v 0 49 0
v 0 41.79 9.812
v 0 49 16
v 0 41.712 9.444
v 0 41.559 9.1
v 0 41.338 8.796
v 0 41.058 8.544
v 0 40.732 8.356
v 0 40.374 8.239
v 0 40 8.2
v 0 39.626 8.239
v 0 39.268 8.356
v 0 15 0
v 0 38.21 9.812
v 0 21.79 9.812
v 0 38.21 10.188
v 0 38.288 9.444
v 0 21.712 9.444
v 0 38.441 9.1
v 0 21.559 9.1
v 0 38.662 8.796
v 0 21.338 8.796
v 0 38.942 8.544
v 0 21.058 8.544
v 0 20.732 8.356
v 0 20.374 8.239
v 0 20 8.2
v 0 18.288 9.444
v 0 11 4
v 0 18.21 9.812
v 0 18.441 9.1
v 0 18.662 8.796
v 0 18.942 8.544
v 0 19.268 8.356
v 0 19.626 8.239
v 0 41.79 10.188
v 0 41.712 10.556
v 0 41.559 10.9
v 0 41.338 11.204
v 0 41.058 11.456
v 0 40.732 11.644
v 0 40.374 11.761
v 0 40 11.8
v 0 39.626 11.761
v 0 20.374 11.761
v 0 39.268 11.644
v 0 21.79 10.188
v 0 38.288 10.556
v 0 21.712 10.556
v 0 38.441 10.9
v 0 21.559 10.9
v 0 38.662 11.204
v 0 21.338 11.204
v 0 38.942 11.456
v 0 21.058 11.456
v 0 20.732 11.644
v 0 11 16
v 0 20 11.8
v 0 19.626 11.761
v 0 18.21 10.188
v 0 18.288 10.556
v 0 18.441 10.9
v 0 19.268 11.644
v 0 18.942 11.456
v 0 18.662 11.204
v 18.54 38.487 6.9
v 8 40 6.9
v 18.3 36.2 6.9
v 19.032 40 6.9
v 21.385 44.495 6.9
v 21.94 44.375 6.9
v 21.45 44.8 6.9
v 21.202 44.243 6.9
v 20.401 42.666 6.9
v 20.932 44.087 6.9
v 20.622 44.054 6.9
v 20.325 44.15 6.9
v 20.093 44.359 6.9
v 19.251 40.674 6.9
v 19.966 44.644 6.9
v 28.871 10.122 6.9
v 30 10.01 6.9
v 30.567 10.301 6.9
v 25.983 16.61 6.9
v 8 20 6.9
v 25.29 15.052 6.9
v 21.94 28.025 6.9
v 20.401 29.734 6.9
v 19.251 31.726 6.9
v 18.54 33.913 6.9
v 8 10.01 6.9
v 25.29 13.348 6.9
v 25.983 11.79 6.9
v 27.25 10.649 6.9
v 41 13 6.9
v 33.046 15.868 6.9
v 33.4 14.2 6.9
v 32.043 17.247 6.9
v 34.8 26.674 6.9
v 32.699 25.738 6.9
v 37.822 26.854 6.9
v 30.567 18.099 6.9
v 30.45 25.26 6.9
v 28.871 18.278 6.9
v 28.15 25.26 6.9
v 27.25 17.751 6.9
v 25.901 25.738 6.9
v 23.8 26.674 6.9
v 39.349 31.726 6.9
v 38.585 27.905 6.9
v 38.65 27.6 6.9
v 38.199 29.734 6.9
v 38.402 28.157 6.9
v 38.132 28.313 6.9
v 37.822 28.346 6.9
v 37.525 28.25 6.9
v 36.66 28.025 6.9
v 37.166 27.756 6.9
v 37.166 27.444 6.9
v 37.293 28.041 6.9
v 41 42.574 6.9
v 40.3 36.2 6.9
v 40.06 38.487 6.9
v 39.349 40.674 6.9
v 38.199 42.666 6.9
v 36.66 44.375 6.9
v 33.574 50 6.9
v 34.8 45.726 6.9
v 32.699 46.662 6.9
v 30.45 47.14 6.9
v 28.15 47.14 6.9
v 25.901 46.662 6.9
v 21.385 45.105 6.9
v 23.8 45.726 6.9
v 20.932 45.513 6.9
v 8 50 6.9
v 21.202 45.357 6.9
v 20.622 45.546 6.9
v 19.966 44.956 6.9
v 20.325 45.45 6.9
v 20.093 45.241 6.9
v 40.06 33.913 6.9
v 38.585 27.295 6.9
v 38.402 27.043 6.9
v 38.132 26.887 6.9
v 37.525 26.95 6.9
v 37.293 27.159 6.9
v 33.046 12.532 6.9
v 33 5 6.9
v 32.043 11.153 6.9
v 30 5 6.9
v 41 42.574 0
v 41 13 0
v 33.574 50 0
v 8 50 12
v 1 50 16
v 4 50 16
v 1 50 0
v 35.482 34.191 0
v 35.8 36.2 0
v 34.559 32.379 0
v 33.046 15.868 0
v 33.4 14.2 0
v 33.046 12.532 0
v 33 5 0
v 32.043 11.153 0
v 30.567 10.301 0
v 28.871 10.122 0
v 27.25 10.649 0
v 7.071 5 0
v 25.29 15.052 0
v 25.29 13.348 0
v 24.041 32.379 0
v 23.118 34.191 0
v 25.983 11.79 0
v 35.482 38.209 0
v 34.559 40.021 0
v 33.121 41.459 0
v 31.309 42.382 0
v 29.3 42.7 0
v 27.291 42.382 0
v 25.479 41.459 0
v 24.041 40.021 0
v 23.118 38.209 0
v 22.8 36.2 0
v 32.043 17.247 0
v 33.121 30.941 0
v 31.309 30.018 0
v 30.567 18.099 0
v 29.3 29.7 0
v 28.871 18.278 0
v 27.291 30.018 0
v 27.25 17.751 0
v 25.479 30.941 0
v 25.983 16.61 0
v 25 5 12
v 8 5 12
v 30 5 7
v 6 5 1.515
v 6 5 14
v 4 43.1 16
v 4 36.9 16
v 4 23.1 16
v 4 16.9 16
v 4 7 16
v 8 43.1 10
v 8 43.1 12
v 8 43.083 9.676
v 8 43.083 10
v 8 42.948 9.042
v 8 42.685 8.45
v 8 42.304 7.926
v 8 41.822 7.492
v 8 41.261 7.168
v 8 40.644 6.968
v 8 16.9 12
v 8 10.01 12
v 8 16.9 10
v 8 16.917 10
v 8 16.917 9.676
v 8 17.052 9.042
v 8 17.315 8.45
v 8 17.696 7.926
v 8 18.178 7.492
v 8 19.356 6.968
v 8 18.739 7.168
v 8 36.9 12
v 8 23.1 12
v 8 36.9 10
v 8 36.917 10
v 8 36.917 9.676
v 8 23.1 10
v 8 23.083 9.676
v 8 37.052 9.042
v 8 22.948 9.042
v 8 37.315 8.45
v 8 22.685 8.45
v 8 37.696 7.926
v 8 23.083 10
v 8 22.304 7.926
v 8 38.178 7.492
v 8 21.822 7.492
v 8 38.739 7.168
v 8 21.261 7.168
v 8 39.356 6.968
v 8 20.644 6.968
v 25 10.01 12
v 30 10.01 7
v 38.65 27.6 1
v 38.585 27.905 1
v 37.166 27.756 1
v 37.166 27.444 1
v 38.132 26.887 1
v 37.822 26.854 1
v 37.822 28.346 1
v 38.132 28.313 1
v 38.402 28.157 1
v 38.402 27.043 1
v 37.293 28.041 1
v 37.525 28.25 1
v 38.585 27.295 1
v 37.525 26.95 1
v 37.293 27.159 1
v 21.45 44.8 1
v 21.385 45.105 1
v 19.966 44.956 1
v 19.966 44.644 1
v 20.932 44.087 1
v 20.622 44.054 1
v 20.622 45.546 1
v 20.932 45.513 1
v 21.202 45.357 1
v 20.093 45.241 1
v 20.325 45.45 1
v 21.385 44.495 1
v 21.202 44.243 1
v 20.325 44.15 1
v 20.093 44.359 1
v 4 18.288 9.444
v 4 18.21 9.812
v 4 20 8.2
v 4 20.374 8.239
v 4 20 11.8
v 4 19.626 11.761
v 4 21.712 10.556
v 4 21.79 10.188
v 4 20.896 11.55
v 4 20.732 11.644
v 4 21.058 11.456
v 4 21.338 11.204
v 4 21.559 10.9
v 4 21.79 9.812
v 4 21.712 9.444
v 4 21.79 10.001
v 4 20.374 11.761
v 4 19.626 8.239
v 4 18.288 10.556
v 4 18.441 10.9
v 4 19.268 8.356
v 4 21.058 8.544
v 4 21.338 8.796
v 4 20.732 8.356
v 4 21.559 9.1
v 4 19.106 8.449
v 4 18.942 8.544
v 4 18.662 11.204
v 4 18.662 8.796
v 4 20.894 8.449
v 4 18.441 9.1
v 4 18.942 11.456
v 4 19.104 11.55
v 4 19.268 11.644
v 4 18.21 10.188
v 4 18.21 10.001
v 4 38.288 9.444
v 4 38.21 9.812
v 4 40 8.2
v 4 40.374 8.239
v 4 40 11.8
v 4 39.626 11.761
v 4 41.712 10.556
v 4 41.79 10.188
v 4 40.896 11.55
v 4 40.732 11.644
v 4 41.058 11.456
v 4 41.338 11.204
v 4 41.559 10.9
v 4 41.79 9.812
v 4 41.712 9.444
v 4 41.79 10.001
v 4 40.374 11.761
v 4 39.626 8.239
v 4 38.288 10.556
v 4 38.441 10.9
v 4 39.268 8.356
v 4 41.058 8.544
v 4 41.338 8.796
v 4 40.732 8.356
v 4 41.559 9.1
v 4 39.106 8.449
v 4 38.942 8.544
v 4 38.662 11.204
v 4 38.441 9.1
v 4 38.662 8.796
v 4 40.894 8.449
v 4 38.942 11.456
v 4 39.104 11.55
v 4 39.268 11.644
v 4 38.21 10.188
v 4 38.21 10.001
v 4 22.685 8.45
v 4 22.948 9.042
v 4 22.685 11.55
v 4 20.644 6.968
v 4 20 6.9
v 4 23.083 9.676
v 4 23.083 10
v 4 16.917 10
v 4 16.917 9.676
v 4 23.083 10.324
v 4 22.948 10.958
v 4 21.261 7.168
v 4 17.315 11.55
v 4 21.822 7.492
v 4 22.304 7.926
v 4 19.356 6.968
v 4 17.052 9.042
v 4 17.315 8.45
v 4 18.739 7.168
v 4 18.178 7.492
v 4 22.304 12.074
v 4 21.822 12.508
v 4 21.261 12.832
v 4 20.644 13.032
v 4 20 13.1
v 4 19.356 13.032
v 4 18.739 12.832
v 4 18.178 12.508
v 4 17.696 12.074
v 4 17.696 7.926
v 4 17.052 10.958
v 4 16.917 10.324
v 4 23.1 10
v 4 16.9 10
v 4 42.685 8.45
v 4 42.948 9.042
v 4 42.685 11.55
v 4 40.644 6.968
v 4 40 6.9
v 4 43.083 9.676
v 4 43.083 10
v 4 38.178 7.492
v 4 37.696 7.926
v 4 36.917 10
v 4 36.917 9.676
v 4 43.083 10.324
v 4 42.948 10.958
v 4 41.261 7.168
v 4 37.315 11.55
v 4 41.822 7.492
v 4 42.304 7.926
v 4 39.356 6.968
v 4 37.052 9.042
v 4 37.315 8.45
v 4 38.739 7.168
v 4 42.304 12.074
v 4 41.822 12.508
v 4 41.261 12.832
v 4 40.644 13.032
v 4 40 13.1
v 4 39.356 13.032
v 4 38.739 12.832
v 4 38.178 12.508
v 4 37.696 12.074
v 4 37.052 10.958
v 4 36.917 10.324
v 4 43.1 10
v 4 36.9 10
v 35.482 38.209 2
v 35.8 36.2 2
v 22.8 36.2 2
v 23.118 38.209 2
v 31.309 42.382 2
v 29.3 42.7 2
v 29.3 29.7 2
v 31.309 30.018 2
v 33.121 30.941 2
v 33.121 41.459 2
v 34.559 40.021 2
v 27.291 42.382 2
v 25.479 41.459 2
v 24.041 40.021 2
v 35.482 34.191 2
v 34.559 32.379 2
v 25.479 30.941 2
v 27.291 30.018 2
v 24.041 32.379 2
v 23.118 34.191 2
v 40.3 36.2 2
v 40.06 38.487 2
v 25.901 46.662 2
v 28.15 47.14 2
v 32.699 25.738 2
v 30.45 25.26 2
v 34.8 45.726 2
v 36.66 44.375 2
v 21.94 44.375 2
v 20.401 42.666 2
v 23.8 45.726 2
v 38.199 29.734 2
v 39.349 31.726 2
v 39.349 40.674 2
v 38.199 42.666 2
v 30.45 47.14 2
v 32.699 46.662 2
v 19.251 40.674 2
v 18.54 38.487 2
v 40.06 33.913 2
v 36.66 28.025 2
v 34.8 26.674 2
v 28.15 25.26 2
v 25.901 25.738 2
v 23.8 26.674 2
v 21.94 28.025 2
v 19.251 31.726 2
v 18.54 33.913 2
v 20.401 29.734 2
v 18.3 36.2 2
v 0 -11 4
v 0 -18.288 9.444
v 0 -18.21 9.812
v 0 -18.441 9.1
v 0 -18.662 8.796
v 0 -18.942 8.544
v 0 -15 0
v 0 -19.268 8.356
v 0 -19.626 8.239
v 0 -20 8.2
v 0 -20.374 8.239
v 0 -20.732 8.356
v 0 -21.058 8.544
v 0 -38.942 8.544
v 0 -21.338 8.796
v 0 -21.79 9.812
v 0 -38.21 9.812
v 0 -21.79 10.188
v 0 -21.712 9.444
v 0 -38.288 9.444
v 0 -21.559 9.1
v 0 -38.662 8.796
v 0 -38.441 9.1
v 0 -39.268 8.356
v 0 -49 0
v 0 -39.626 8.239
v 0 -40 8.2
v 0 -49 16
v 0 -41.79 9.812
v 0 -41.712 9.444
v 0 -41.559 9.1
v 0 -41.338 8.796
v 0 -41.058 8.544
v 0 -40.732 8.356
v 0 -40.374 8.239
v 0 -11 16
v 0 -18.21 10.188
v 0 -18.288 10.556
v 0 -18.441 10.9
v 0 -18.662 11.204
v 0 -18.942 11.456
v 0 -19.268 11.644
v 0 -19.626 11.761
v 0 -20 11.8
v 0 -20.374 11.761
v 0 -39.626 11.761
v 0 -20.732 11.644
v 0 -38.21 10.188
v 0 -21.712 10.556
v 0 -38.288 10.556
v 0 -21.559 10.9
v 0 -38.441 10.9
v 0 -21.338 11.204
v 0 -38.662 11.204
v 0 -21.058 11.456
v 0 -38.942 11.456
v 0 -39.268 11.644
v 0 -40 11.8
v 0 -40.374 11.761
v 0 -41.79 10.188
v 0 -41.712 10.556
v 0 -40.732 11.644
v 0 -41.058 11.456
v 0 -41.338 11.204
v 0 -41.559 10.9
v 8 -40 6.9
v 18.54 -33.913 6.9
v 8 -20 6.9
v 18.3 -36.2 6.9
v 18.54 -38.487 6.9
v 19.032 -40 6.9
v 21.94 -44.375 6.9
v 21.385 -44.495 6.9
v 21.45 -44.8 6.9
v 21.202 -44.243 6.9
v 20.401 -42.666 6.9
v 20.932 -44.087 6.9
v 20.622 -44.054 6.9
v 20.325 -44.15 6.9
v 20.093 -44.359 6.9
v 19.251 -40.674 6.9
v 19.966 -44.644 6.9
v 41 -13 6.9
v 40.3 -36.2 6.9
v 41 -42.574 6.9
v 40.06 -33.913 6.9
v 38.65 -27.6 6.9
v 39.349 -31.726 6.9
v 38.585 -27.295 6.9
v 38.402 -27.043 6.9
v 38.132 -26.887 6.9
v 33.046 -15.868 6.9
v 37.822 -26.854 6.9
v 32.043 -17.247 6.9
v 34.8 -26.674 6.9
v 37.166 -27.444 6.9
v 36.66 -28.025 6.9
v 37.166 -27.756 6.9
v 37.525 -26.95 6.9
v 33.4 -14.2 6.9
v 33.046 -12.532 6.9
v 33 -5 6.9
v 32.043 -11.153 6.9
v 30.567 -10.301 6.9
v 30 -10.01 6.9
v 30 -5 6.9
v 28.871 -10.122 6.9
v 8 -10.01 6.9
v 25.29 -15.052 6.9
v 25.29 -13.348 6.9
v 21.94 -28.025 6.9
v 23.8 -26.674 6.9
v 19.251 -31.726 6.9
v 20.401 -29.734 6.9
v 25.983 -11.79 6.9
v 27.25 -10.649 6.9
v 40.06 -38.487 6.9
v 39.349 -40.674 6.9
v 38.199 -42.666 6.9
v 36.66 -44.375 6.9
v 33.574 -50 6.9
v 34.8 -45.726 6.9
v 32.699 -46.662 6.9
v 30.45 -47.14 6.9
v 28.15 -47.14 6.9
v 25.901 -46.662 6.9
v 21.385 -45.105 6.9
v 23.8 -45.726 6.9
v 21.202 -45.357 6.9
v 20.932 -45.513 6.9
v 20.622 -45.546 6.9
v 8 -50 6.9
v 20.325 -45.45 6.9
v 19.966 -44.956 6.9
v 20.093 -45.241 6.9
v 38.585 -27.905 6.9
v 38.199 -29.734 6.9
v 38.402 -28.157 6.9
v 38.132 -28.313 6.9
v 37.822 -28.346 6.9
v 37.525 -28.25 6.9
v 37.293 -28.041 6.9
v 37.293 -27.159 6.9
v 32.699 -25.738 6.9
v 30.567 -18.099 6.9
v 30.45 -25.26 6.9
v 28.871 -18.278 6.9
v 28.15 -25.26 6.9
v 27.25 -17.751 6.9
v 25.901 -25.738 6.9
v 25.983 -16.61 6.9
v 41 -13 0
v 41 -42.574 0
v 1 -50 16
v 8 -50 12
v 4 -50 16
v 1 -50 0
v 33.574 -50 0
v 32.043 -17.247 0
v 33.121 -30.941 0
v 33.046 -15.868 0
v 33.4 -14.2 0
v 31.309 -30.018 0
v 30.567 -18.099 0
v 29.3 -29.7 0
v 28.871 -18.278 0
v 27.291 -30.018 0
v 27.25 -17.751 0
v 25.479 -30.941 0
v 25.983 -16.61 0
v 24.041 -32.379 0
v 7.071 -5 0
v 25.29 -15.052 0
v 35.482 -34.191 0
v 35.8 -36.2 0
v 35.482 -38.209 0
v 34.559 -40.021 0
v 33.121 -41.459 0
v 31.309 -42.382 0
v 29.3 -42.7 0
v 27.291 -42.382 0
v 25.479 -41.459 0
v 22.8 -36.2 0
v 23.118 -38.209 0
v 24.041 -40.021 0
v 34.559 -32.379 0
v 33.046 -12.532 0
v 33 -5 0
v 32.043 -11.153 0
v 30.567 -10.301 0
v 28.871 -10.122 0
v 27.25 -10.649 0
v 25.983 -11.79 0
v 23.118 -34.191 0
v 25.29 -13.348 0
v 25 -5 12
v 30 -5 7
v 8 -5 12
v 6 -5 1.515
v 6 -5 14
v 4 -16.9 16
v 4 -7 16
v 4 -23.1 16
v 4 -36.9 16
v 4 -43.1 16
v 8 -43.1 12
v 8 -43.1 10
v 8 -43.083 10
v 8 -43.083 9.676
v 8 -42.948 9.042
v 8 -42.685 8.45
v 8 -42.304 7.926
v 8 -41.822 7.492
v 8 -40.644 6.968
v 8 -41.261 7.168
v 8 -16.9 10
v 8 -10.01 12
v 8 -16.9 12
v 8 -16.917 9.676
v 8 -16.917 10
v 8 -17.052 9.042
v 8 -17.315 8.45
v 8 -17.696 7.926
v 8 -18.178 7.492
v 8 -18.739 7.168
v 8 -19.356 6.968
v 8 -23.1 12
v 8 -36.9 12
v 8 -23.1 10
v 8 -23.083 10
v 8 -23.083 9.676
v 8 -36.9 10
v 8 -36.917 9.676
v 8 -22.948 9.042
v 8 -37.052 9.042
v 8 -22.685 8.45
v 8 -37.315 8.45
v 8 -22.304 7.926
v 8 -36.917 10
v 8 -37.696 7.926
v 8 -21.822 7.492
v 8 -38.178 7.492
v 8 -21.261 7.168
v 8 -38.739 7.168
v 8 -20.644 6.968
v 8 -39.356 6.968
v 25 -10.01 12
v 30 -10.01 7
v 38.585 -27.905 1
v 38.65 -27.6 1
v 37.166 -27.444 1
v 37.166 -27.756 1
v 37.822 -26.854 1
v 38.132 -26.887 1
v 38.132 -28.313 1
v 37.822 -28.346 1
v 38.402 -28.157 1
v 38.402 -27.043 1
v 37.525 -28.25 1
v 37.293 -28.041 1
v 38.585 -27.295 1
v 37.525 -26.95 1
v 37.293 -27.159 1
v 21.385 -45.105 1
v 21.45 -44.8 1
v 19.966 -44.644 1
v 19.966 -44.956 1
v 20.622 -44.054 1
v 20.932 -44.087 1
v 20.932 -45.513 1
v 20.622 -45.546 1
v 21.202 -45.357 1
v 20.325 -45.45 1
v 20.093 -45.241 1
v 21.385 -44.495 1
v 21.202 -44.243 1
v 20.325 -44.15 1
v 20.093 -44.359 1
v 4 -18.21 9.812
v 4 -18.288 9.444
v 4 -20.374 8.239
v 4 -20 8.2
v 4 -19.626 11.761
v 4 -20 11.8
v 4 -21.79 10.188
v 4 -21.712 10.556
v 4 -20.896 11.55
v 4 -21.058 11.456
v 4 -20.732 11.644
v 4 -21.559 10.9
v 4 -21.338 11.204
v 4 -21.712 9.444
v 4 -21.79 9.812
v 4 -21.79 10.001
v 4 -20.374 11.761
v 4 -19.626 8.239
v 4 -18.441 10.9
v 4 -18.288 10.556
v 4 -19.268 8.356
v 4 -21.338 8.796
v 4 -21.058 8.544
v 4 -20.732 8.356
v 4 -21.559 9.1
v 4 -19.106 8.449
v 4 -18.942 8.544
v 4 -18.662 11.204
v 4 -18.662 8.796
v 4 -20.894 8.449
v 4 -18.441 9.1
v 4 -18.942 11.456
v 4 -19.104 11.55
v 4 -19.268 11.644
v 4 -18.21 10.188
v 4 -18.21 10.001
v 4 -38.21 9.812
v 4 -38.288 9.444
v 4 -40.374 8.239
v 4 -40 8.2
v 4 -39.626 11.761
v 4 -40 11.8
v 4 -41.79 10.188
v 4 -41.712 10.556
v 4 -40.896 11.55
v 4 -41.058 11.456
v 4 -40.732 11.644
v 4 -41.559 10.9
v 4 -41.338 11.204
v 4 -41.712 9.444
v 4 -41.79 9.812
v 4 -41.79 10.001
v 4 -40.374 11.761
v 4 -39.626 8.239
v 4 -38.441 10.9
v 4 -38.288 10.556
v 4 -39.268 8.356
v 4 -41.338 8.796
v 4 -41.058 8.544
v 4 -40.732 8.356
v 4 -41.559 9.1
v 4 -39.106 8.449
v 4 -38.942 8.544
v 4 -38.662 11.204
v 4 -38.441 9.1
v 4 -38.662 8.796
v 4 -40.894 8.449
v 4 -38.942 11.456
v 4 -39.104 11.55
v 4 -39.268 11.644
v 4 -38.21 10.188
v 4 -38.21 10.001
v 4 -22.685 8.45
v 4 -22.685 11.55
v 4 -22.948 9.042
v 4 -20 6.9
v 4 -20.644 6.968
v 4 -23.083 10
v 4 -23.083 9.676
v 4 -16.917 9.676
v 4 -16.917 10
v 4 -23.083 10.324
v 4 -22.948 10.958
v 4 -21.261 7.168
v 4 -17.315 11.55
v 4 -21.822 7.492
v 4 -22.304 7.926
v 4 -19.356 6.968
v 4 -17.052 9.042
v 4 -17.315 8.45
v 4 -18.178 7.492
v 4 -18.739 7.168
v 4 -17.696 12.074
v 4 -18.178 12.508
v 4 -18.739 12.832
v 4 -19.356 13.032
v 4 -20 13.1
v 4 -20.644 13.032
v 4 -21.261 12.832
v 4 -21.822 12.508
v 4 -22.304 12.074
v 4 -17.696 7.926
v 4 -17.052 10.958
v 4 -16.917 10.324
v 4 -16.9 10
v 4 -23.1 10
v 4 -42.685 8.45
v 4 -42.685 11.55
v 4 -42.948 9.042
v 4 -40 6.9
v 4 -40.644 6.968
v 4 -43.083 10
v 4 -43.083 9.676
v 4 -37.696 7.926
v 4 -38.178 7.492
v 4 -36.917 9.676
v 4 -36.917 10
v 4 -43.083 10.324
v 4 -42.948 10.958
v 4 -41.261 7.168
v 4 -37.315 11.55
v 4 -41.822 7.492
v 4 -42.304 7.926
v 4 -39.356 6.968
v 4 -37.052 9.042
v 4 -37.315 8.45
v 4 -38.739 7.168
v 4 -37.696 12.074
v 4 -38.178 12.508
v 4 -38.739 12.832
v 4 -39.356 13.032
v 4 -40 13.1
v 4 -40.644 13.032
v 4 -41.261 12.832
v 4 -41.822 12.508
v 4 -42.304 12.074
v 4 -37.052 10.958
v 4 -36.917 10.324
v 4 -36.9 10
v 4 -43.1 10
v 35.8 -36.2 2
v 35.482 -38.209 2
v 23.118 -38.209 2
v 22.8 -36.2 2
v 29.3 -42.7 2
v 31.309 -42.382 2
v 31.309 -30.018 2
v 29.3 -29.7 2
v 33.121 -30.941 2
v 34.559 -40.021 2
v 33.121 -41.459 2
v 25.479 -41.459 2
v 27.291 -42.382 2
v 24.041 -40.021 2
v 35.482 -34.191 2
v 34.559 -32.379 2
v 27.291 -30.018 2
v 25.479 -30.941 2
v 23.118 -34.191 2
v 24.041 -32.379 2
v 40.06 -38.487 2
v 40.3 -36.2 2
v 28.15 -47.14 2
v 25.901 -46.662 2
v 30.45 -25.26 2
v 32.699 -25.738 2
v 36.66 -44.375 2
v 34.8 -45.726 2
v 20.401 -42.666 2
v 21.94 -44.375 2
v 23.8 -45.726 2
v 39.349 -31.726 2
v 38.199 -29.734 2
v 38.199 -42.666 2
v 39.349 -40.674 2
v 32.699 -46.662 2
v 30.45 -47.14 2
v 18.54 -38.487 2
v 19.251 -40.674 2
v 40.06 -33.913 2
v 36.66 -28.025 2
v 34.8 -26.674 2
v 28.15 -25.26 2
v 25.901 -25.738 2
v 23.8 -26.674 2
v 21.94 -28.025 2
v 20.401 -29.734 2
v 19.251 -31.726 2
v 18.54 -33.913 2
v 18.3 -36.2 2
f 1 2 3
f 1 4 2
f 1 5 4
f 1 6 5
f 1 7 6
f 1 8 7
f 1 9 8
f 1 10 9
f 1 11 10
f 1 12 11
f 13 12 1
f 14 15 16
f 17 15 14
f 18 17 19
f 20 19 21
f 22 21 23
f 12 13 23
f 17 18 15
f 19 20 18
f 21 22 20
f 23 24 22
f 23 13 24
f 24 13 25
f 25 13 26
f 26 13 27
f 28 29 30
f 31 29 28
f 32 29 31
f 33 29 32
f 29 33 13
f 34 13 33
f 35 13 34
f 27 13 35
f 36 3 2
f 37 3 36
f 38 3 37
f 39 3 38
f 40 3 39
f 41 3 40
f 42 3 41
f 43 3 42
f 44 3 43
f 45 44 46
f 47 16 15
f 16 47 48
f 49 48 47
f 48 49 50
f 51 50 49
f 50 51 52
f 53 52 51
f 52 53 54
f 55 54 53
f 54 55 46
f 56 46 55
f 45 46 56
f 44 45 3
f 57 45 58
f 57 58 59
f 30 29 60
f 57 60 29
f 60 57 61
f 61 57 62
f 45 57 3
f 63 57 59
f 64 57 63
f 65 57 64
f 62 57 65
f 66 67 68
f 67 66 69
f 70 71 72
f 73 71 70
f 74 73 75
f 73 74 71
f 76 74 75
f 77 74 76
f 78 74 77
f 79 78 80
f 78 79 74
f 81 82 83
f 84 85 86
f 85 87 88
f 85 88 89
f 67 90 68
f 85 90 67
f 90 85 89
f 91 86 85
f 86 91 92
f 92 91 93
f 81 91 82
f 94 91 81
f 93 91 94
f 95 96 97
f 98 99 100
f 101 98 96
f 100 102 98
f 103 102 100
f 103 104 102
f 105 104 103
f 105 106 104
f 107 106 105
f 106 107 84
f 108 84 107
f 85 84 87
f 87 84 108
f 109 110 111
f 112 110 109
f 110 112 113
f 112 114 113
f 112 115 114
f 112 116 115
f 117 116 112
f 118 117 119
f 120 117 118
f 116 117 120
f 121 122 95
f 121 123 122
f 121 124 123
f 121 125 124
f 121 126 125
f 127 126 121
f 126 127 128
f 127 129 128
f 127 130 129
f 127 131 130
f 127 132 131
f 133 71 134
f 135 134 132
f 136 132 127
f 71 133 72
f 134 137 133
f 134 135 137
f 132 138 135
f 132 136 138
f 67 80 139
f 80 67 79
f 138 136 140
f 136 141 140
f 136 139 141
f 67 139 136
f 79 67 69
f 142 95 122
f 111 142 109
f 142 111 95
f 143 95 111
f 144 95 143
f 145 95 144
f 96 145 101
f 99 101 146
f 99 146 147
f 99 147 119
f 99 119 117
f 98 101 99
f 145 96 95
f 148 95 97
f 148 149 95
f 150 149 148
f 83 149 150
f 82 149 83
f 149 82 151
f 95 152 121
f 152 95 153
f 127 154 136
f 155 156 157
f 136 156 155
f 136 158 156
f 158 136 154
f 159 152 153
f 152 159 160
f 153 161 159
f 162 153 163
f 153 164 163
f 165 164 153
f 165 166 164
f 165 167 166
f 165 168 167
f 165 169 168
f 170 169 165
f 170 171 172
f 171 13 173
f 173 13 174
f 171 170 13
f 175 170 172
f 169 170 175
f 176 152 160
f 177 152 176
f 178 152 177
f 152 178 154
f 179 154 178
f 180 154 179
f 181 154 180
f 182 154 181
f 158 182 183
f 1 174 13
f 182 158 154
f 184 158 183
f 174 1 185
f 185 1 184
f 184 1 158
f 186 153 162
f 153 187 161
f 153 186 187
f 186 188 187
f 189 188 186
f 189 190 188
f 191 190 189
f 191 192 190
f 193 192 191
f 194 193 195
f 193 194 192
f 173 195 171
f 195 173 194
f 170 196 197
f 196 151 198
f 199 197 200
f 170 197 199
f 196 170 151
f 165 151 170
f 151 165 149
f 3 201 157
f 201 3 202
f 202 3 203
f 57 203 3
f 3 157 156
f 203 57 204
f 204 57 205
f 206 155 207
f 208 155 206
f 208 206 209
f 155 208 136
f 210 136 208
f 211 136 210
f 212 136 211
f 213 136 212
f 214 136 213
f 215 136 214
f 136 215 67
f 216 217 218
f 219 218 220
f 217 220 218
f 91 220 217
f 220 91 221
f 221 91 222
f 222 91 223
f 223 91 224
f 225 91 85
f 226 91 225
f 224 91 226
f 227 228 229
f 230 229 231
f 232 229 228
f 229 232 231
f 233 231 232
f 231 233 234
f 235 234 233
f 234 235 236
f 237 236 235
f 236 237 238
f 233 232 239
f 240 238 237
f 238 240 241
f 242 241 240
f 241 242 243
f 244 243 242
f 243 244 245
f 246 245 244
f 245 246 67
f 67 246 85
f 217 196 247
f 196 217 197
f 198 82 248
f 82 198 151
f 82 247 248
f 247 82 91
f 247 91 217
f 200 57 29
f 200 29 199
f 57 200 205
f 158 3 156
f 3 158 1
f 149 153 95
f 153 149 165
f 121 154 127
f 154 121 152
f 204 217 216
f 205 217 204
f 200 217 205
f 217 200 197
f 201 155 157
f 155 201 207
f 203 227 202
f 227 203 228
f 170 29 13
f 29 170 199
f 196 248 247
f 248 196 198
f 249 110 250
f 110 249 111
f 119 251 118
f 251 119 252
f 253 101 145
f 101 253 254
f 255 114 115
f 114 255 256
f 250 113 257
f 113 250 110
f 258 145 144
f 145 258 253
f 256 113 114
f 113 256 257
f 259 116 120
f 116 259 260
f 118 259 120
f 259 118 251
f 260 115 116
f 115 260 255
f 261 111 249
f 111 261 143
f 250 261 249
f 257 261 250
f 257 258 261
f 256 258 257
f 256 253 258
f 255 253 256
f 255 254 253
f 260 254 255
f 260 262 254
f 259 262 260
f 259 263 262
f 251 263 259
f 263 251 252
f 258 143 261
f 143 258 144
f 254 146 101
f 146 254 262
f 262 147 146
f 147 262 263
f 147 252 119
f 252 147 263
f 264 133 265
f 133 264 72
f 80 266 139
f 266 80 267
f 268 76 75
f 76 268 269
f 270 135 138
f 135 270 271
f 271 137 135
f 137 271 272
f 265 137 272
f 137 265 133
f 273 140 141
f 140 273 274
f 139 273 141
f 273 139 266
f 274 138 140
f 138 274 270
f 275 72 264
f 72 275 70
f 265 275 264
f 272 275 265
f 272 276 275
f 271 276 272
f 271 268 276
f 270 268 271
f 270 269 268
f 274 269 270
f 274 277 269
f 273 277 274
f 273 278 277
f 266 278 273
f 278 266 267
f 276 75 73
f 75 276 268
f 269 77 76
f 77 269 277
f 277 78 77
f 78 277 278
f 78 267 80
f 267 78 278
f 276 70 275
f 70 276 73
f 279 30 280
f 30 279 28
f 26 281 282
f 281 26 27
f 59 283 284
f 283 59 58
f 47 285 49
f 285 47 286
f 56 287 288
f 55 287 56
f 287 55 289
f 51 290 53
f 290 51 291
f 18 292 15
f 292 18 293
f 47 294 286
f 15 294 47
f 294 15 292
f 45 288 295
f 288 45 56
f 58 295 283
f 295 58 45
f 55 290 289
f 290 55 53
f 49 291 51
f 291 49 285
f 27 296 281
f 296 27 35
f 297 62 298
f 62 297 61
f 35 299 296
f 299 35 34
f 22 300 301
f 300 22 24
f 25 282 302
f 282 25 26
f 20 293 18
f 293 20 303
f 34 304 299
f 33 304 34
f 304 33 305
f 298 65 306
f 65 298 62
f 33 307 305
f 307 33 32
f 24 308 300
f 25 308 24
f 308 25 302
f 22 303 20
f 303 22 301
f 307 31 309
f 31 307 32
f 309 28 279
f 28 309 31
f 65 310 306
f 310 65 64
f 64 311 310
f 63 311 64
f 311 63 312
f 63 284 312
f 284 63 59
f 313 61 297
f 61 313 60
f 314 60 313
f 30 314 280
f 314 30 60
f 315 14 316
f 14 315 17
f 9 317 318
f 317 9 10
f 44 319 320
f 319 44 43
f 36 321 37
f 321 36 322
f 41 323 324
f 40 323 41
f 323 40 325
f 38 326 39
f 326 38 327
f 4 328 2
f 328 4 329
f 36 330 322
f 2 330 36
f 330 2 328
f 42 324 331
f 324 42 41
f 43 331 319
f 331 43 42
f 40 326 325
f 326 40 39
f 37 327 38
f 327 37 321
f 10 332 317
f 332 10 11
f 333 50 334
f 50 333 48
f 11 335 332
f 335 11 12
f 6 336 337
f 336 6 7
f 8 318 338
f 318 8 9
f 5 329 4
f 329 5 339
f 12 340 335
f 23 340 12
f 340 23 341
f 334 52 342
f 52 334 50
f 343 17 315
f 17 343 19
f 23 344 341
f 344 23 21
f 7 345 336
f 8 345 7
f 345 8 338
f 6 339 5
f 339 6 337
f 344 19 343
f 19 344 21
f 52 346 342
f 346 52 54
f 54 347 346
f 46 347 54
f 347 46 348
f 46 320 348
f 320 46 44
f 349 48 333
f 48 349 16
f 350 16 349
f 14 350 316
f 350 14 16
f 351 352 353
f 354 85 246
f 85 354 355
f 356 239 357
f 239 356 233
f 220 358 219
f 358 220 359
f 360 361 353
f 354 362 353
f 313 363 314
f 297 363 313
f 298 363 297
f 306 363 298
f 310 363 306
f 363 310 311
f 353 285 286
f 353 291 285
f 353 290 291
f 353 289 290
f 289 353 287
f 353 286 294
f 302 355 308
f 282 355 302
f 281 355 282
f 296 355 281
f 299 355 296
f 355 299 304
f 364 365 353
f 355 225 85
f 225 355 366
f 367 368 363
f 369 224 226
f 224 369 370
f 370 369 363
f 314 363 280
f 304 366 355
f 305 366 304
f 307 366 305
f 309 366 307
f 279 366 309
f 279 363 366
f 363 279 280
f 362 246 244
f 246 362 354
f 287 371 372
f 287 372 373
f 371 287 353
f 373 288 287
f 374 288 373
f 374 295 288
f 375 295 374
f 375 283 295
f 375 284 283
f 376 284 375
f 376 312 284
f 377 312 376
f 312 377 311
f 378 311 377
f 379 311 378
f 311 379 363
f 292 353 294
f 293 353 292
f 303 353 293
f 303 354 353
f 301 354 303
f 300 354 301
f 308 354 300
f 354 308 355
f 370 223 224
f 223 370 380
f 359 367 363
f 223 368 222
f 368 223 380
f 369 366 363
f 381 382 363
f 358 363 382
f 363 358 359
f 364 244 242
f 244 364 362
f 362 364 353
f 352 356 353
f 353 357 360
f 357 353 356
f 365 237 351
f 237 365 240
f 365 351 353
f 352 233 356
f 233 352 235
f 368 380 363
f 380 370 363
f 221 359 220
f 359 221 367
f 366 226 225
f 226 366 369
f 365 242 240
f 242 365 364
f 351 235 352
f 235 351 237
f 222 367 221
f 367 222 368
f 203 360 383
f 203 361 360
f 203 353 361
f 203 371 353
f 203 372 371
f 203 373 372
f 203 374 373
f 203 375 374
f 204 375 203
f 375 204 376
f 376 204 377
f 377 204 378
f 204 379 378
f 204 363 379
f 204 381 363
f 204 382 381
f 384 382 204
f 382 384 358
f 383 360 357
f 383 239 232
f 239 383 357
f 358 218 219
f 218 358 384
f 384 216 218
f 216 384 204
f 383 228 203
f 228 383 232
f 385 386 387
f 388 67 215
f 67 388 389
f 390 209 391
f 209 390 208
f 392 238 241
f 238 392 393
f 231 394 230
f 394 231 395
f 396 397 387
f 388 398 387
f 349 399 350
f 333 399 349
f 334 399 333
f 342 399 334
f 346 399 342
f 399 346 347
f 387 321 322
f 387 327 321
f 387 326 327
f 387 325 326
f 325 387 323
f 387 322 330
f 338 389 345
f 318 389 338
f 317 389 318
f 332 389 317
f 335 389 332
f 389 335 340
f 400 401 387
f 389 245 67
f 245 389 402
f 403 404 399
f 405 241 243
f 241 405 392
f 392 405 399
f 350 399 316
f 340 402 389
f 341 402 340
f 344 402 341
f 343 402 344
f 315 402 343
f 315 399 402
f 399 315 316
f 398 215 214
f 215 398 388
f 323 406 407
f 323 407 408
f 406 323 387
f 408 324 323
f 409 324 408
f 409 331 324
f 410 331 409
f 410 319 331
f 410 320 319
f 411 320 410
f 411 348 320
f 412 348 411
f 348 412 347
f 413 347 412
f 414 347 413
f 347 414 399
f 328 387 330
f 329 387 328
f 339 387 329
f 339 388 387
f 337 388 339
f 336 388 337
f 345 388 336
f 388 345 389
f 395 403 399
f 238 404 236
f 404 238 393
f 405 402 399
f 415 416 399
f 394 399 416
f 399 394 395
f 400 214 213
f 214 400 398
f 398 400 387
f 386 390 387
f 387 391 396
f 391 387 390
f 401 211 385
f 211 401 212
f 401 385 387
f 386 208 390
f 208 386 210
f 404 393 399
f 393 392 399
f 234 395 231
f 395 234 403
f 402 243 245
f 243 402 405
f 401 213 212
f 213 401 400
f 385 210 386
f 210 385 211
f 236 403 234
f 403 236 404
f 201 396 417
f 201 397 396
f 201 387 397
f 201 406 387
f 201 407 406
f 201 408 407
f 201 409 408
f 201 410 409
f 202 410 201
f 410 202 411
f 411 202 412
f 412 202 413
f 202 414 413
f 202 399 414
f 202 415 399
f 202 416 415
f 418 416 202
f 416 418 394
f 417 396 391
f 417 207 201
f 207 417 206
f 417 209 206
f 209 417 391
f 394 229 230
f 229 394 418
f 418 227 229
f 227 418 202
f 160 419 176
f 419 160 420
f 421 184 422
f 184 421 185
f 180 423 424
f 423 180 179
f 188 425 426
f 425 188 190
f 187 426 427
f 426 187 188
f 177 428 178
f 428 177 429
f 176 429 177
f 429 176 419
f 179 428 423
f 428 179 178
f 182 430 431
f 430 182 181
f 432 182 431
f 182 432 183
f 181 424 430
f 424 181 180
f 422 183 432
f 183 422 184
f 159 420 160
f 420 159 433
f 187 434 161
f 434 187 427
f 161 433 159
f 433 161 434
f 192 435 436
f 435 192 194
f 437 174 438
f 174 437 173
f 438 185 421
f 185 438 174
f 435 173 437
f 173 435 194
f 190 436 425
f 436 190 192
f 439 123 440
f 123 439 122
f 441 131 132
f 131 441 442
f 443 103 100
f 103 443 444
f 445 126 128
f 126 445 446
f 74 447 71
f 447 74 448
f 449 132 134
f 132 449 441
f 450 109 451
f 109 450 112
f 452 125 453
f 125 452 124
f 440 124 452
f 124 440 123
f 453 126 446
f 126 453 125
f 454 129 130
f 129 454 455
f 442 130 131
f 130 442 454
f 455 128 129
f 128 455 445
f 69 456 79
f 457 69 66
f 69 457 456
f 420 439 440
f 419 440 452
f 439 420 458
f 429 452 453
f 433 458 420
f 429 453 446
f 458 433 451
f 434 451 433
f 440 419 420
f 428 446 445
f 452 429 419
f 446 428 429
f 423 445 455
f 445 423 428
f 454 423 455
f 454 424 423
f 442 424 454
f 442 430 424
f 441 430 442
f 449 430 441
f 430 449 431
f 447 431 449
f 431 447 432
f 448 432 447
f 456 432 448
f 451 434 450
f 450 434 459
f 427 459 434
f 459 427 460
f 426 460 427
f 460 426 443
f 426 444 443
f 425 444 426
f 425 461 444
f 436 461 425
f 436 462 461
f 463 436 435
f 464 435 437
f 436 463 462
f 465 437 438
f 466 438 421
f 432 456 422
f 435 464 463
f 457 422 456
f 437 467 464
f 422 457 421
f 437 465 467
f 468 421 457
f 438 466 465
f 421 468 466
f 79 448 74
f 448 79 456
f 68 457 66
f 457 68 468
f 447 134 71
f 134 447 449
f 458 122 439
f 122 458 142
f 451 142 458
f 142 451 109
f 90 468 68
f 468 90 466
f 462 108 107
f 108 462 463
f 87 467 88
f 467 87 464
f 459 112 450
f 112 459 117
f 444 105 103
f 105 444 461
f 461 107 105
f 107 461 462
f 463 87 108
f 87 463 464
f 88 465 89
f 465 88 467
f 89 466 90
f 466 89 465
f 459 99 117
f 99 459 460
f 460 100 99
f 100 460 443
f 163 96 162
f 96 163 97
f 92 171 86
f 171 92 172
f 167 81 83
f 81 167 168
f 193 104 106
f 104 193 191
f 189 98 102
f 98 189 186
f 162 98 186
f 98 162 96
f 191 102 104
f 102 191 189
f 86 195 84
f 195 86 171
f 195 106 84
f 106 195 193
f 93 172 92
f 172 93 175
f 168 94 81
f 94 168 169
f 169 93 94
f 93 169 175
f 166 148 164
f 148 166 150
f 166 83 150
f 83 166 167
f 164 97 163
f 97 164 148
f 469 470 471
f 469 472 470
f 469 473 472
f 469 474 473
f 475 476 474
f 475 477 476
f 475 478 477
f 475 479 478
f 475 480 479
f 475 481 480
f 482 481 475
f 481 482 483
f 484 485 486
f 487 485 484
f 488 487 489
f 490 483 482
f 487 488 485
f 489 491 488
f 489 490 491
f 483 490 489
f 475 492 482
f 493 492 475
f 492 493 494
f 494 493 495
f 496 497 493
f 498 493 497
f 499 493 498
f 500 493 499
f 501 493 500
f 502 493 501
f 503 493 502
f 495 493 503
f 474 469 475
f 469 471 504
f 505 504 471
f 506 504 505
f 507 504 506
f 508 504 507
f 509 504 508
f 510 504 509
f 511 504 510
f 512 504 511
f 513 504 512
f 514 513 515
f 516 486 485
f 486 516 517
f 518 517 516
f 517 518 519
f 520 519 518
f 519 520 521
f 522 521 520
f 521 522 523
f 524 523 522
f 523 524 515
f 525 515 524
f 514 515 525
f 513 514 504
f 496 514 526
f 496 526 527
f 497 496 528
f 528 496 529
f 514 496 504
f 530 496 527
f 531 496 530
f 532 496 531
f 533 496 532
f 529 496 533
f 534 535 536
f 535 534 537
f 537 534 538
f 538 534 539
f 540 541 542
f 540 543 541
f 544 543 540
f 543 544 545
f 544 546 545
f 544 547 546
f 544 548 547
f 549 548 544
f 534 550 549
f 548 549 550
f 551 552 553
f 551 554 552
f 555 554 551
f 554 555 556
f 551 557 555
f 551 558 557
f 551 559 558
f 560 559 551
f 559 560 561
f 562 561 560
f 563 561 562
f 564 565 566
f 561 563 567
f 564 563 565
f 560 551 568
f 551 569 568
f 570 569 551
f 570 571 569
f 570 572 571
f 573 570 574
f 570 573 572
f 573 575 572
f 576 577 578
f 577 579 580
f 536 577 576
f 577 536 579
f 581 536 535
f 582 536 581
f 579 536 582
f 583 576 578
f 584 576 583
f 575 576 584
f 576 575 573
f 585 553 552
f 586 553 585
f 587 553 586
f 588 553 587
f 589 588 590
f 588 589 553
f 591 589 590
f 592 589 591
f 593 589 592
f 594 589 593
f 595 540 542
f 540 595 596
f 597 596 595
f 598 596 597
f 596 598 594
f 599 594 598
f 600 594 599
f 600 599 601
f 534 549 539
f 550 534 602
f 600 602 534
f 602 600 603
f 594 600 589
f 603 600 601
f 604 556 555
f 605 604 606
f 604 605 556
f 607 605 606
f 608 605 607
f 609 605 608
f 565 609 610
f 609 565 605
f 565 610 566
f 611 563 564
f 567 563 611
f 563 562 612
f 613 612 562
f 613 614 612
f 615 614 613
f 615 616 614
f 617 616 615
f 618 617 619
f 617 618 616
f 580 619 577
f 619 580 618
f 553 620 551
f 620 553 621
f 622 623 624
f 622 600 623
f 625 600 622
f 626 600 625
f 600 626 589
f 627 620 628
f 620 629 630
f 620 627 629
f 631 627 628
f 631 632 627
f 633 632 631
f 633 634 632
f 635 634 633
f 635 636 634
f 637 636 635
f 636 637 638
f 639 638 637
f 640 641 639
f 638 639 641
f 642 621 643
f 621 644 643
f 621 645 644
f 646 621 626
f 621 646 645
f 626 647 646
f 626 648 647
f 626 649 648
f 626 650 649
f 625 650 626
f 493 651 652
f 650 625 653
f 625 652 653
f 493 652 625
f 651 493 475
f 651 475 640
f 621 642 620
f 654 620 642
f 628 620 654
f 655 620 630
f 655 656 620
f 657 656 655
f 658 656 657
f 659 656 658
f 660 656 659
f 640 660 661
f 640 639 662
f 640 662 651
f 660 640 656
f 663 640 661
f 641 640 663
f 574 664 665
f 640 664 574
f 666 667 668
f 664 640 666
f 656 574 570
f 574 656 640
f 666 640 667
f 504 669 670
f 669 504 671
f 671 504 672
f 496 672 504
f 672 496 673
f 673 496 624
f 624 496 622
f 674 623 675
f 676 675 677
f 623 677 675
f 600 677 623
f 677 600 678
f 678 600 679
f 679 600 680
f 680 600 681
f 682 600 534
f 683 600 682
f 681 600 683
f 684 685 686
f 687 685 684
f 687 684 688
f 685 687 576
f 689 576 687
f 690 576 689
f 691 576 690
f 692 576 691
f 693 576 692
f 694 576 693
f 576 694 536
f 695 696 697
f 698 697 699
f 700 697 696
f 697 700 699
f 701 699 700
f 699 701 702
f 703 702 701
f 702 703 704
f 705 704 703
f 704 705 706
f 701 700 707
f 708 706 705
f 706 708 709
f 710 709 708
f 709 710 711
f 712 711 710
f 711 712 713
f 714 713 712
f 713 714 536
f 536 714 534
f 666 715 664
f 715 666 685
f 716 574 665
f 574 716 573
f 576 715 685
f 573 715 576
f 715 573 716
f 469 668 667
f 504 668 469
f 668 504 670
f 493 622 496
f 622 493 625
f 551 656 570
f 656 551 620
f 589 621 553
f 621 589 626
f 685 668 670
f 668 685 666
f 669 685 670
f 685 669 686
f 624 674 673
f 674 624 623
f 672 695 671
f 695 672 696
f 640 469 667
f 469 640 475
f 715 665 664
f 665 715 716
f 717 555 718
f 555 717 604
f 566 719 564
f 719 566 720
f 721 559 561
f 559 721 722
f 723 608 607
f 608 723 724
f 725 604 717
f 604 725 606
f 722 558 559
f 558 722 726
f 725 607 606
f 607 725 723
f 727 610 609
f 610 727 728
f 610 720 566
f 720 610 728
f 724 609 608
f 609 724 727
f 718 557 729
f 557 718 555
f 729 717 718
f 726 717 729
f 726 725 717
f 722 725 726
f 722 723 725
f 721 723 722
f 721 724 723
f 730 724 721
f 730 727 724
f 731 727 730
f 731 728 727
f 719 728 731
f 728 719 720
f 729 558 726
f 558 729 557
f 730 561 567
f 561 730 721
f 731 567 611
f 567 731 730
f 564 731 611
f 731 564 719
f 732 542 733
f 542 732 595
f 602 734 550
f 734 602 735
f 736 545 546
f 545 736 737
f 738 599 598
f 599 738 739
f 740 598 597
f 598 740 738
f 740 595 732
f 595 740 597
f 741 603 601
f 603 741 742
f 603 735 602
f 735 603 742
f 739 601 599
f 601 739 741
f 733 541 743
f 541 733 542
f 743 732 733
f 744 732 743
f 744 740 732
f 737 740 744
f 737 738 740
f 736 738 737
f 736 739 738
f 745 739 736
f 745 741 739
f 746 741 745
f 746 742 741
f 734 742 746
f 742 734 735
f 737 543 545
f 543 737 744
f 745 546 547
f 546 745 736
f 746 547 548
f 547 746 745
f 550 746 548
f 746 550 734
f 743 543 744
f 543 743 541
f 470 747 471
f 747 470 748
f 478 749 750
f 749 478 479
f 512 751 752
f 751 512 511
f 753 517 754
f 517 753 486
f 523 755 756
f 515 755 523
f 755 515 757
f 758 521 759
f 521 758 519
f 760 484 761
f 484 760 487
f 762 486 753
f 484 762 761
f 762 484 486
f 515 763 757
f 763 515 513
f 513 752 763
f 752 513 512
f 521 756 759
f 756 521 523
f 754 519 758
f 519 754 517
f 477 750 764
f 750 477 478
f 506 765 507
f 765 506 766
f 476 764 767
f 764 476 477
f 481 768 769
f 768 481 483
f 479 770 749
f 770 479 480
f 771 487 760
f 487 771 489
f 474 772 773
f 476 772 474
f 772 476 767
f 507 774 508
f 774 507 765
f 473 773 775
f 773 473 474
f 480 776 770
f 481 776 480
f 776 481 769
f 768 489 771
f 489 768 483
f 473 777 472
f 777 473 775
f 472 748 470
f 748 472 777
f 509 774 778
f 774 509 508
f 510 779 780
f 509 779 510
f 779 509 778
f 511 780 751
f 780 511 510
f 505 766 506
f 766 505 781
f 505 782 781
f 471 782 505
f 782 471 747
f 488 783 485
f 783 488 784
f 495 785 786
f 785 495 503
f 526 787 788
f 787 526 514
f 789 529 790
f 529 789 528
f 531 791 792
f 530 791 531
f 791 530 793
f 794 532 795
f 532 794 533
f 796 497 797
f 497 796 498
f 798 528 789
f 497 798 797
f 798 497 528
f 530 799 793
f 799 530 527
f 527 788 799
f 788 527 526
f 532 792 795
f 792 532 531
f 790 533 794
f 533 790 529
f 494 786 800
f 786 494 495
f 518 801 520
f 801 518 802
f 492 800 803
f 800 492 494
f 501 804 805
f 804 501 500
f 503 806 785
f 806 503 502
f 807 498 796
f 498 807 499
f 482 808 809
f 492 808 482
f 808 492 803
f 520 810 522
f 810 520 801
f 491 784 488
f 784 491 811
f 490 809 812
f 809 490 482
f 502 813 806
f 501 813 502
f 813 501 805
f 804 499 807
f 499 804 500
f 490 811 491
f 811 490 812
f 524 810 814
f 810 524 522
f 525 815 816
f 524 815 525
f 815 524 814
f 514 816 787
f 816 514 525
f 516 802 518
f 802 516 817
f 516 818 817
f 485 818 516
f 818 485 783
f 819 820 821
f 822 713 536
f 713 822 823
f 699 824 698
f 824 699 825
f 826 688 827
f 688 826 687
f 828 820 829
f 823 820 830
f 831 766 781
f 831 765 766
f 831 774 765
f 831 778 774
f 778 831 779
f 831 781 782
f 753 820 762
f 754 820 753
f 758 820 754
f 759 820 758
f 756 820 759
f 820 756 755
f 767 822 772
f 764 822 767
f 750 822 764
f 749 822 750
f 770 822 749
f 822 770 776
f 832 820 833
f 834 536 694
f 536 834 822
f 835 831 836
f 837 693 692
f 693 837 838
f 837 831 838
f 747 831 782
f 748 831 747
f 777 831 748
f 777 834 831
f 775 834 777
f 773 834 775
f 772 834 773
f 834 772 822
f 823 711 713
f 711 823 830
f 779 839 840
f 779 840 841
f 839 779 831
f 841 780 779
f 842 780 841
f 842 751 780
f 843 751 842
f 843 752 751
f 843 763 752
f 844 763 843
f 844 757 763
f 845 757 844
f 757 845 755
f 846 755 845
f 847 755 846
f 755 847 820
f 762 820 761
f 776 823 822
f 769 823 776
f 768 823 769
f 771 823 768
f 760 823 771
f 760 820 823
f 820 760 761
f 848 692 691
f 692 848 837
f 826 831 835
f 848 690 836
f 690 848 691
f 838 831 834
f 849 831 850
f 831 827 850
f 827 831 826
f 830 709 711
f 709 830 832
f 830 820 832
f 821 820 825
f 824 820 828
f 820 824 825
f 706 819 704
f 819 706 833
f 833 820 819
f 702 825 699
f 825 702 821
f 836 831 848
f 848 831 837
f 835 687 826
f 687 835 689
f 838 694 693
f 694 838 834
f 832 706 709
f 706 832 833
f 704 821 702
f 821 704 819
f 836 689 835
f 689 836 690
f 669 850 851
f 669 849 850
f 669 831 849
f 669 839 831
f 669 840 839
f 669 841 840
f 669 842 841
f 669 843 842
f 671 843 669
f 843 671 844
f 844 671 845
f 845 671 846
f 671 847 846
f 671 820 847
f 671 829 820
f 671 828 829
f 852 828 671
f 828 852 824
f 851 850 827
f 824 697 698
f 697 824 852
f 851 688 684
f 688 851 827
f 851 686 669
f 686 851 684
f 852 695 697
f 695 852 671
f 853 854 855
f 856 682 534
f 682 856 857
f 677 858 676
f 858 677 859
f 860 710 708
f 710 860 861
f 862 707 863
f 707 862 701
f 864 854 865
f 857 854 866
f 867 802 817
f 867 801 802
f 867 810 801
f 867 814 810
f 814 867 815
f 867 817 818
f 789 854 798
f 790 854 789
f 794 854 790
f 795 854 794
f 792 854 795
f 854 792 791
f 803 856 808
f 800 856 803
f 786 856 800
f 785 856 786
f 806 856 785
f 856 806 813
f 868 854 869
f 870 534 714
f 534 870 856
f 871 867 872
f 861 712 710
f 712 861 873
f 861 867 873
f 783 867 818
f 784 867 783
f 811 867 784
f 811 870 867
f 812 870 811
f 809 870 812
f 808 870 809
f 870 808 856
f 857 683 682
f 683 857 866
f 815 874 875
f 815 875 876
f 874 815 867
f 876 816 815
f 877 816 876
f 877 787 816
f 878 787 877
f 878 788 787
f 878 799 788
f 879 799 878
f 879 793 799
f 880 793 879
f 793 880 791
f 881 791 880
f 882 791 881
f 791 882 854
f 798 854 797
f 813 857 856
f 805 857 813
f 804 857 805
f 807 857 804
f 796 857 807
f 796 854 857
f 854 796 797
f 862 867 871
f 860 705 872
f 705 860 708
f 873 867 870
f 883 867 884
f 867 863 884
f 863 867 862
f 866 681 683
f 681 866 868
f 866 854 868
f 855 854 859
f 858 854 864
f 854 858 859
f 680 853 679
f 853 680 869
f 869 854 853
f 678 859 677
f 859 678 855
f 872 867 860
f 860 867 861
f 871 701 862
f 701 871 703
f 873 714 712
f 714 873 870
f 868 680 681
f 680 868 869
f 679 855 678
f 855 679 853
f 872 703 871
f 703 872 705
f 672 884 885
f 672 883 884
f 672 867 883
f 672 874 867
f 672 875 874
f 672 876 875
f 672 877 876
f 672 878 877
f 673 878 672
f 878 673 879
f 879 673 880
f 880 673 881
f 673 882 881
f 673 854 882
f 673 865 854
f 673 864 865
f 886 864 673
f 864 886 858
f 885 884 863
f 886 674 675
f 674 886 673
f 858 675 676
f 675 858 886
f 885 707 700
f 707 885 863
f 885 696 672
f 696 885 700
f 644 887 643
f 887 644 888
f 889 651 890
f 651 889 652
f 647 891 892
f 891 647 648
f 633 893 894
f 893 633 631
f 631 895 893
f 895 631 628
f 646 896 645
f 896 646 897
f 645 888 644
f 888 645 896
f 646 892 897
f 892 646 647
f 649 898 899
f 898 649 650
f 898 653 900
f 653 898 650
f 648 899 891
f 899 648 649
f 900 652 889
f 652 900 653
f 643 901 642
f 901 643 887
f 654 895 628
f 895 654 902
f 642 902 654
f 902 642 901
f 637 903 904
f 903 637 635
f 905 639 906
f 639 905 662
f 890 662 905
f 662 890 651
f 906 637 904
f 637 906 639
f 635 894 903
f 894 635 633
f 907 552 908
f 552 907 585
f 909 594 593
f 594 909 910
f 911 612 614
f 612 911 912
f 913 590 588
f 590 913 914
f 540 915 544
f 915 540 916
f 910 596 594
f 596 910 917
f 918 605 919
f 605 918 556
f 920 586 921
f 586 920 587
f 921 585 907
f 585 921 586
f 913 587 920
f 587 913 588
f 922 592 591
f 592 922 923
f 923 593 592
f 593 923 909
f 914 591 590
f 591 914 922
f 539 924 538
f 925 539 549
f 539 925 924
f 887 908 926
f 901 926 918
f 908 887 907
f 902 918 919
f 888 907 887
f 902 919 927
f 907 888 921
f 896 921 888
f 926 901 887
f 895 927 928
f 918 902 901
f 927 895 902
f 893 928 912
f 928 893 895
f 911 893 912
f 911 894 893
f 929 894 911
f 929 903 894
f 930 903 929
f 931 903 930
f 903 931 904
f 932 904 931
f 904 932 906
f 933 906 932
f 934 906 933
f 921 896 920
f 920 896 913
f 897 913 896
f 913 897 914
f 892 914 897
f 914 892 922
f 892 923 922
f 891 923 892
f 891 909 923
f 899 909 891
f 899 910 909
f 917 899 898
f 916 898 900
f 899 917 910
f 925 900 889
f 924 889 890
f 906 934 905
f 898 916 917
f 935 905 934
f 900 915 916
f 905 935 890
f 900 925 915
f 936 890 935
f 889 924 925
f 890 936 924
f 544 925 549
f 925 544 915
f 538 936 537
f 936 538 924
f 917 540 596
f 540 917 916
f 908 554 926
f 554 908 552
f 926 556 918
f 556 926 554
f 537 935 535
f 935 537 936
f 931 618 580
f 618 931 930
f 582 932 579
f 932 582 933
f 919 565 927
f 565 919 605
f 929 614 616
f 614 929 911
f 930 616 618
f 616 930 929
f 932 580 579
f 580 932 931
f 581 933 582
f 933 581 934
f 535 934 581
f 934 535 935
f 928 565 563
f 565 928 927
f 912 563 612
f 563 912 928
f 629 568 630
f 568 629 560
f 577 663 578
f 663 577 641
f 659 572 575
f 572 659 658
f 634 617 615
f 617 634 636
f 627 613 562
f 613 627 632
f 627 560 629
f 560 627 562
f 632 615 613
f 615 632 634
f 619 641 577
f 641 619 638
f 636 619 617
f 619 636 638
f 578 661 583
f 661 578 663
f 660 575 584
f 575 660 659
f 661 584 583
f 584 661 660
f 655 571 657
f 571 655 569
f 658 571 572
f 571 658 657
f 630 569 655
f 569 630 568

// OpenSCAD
// PRUSA iteration3
// Z axis top holder
// GNU GPL v3
// Josef Průša <iam@josefprusa.cz> and contributors
// http://www.reprap.org/wiki/Prusa_Mendel
// http://prusamendel.org

module z_top_base()
{
  // plate touching the base
  translate([0, -5, 0]) {
    cube([41, 45, 6.9]);
    cube([8, 45, 16]);
    cube([30, 5.01, 12]);
  }
}

module z_top_fancy()
{
  // Corner cutouts
  translate([0.5,0.5,-2]) rotate([0,0,-45-180]) translate([-15,0,-1]) cube([30,30,51]);
  translate([0.5,40-0.5,-2]) rotate([0,0,-45+90]) translate([-15,0,-1]) cube([30,30,51]);
  translate([38-2.5,-5+2.5,-2]) rotate([0,0,-45-90]) translate([-15,0,-1]) cube([30,30,51]);
  translate([58,58,-2]) rotate([0,0,-45-180]) translate([-15,0,-1]) cube([30,30,51]);
  translate([8,0,12]) rotate([0,-45,0]) translate([0,-5-2,0]) cube([30,50,30]);
  translate([0,0,5]) rotate([45+180,0,0]) rotate([0,0,-45+90]) translate([0,0,-15]) cube([30,30,30]);

  // Stiffner cut out
  translate([30,0,7]) rotate([0,-45,0]) translate([0,-5-2,0]) cube([30,50,30]);
}

module z_top_holes()
{
  // Screw holes
  translate([-1,10,10]) rotate([0,90,0]) cylinder(h=20, r=1.8, $fn=30);
  translate([-1,10+20,10]) rotate([0,90,0]) cylinder(h=20, r=1.8, $fn=30);

  // Screw heads
  translate([4,10,10]) rotate([0,90,0]) cylinder(h=20, r=3.1, $fn=30);
  translate([4,10-3.1,10]) cube([10,6.2,10]);
  translate([4,10+20,10]) rotate([0,90,0]) cylinder(h=20, r=3.1, $fn=30);
  translate([4,10+20-3.1,10]) cube([10,6.2,10]);

  // Ball bearing
  translate([25+4.3,26.2,-1]) cylinder(h=10, d=13, $fn=20);
  translate([25+4.3,26.2,2]) cylinder(h=10, d=22, $fn=30);
  for (i=[-1,1]) translate([25+4.3-8.6*i,26.2+8.6*i,1]) cylinder(h=9, d=1.5, $fn=15);

  // Z rod holder
  translate([25+4.3,4.2,-1]) cylinder(h=10, r=4.1, $fn=15);
}

module z_axis_top()
{
  difference() {
    z_top_base();
    z_top_fancy();
    z_top_holes();
  }
}

// Final part
module z_top()
{
    for (i=[0,1]) {
        mirror([0,i,0]) translate([0,10,0]) z_axis_top();
    }
}

z_top();
